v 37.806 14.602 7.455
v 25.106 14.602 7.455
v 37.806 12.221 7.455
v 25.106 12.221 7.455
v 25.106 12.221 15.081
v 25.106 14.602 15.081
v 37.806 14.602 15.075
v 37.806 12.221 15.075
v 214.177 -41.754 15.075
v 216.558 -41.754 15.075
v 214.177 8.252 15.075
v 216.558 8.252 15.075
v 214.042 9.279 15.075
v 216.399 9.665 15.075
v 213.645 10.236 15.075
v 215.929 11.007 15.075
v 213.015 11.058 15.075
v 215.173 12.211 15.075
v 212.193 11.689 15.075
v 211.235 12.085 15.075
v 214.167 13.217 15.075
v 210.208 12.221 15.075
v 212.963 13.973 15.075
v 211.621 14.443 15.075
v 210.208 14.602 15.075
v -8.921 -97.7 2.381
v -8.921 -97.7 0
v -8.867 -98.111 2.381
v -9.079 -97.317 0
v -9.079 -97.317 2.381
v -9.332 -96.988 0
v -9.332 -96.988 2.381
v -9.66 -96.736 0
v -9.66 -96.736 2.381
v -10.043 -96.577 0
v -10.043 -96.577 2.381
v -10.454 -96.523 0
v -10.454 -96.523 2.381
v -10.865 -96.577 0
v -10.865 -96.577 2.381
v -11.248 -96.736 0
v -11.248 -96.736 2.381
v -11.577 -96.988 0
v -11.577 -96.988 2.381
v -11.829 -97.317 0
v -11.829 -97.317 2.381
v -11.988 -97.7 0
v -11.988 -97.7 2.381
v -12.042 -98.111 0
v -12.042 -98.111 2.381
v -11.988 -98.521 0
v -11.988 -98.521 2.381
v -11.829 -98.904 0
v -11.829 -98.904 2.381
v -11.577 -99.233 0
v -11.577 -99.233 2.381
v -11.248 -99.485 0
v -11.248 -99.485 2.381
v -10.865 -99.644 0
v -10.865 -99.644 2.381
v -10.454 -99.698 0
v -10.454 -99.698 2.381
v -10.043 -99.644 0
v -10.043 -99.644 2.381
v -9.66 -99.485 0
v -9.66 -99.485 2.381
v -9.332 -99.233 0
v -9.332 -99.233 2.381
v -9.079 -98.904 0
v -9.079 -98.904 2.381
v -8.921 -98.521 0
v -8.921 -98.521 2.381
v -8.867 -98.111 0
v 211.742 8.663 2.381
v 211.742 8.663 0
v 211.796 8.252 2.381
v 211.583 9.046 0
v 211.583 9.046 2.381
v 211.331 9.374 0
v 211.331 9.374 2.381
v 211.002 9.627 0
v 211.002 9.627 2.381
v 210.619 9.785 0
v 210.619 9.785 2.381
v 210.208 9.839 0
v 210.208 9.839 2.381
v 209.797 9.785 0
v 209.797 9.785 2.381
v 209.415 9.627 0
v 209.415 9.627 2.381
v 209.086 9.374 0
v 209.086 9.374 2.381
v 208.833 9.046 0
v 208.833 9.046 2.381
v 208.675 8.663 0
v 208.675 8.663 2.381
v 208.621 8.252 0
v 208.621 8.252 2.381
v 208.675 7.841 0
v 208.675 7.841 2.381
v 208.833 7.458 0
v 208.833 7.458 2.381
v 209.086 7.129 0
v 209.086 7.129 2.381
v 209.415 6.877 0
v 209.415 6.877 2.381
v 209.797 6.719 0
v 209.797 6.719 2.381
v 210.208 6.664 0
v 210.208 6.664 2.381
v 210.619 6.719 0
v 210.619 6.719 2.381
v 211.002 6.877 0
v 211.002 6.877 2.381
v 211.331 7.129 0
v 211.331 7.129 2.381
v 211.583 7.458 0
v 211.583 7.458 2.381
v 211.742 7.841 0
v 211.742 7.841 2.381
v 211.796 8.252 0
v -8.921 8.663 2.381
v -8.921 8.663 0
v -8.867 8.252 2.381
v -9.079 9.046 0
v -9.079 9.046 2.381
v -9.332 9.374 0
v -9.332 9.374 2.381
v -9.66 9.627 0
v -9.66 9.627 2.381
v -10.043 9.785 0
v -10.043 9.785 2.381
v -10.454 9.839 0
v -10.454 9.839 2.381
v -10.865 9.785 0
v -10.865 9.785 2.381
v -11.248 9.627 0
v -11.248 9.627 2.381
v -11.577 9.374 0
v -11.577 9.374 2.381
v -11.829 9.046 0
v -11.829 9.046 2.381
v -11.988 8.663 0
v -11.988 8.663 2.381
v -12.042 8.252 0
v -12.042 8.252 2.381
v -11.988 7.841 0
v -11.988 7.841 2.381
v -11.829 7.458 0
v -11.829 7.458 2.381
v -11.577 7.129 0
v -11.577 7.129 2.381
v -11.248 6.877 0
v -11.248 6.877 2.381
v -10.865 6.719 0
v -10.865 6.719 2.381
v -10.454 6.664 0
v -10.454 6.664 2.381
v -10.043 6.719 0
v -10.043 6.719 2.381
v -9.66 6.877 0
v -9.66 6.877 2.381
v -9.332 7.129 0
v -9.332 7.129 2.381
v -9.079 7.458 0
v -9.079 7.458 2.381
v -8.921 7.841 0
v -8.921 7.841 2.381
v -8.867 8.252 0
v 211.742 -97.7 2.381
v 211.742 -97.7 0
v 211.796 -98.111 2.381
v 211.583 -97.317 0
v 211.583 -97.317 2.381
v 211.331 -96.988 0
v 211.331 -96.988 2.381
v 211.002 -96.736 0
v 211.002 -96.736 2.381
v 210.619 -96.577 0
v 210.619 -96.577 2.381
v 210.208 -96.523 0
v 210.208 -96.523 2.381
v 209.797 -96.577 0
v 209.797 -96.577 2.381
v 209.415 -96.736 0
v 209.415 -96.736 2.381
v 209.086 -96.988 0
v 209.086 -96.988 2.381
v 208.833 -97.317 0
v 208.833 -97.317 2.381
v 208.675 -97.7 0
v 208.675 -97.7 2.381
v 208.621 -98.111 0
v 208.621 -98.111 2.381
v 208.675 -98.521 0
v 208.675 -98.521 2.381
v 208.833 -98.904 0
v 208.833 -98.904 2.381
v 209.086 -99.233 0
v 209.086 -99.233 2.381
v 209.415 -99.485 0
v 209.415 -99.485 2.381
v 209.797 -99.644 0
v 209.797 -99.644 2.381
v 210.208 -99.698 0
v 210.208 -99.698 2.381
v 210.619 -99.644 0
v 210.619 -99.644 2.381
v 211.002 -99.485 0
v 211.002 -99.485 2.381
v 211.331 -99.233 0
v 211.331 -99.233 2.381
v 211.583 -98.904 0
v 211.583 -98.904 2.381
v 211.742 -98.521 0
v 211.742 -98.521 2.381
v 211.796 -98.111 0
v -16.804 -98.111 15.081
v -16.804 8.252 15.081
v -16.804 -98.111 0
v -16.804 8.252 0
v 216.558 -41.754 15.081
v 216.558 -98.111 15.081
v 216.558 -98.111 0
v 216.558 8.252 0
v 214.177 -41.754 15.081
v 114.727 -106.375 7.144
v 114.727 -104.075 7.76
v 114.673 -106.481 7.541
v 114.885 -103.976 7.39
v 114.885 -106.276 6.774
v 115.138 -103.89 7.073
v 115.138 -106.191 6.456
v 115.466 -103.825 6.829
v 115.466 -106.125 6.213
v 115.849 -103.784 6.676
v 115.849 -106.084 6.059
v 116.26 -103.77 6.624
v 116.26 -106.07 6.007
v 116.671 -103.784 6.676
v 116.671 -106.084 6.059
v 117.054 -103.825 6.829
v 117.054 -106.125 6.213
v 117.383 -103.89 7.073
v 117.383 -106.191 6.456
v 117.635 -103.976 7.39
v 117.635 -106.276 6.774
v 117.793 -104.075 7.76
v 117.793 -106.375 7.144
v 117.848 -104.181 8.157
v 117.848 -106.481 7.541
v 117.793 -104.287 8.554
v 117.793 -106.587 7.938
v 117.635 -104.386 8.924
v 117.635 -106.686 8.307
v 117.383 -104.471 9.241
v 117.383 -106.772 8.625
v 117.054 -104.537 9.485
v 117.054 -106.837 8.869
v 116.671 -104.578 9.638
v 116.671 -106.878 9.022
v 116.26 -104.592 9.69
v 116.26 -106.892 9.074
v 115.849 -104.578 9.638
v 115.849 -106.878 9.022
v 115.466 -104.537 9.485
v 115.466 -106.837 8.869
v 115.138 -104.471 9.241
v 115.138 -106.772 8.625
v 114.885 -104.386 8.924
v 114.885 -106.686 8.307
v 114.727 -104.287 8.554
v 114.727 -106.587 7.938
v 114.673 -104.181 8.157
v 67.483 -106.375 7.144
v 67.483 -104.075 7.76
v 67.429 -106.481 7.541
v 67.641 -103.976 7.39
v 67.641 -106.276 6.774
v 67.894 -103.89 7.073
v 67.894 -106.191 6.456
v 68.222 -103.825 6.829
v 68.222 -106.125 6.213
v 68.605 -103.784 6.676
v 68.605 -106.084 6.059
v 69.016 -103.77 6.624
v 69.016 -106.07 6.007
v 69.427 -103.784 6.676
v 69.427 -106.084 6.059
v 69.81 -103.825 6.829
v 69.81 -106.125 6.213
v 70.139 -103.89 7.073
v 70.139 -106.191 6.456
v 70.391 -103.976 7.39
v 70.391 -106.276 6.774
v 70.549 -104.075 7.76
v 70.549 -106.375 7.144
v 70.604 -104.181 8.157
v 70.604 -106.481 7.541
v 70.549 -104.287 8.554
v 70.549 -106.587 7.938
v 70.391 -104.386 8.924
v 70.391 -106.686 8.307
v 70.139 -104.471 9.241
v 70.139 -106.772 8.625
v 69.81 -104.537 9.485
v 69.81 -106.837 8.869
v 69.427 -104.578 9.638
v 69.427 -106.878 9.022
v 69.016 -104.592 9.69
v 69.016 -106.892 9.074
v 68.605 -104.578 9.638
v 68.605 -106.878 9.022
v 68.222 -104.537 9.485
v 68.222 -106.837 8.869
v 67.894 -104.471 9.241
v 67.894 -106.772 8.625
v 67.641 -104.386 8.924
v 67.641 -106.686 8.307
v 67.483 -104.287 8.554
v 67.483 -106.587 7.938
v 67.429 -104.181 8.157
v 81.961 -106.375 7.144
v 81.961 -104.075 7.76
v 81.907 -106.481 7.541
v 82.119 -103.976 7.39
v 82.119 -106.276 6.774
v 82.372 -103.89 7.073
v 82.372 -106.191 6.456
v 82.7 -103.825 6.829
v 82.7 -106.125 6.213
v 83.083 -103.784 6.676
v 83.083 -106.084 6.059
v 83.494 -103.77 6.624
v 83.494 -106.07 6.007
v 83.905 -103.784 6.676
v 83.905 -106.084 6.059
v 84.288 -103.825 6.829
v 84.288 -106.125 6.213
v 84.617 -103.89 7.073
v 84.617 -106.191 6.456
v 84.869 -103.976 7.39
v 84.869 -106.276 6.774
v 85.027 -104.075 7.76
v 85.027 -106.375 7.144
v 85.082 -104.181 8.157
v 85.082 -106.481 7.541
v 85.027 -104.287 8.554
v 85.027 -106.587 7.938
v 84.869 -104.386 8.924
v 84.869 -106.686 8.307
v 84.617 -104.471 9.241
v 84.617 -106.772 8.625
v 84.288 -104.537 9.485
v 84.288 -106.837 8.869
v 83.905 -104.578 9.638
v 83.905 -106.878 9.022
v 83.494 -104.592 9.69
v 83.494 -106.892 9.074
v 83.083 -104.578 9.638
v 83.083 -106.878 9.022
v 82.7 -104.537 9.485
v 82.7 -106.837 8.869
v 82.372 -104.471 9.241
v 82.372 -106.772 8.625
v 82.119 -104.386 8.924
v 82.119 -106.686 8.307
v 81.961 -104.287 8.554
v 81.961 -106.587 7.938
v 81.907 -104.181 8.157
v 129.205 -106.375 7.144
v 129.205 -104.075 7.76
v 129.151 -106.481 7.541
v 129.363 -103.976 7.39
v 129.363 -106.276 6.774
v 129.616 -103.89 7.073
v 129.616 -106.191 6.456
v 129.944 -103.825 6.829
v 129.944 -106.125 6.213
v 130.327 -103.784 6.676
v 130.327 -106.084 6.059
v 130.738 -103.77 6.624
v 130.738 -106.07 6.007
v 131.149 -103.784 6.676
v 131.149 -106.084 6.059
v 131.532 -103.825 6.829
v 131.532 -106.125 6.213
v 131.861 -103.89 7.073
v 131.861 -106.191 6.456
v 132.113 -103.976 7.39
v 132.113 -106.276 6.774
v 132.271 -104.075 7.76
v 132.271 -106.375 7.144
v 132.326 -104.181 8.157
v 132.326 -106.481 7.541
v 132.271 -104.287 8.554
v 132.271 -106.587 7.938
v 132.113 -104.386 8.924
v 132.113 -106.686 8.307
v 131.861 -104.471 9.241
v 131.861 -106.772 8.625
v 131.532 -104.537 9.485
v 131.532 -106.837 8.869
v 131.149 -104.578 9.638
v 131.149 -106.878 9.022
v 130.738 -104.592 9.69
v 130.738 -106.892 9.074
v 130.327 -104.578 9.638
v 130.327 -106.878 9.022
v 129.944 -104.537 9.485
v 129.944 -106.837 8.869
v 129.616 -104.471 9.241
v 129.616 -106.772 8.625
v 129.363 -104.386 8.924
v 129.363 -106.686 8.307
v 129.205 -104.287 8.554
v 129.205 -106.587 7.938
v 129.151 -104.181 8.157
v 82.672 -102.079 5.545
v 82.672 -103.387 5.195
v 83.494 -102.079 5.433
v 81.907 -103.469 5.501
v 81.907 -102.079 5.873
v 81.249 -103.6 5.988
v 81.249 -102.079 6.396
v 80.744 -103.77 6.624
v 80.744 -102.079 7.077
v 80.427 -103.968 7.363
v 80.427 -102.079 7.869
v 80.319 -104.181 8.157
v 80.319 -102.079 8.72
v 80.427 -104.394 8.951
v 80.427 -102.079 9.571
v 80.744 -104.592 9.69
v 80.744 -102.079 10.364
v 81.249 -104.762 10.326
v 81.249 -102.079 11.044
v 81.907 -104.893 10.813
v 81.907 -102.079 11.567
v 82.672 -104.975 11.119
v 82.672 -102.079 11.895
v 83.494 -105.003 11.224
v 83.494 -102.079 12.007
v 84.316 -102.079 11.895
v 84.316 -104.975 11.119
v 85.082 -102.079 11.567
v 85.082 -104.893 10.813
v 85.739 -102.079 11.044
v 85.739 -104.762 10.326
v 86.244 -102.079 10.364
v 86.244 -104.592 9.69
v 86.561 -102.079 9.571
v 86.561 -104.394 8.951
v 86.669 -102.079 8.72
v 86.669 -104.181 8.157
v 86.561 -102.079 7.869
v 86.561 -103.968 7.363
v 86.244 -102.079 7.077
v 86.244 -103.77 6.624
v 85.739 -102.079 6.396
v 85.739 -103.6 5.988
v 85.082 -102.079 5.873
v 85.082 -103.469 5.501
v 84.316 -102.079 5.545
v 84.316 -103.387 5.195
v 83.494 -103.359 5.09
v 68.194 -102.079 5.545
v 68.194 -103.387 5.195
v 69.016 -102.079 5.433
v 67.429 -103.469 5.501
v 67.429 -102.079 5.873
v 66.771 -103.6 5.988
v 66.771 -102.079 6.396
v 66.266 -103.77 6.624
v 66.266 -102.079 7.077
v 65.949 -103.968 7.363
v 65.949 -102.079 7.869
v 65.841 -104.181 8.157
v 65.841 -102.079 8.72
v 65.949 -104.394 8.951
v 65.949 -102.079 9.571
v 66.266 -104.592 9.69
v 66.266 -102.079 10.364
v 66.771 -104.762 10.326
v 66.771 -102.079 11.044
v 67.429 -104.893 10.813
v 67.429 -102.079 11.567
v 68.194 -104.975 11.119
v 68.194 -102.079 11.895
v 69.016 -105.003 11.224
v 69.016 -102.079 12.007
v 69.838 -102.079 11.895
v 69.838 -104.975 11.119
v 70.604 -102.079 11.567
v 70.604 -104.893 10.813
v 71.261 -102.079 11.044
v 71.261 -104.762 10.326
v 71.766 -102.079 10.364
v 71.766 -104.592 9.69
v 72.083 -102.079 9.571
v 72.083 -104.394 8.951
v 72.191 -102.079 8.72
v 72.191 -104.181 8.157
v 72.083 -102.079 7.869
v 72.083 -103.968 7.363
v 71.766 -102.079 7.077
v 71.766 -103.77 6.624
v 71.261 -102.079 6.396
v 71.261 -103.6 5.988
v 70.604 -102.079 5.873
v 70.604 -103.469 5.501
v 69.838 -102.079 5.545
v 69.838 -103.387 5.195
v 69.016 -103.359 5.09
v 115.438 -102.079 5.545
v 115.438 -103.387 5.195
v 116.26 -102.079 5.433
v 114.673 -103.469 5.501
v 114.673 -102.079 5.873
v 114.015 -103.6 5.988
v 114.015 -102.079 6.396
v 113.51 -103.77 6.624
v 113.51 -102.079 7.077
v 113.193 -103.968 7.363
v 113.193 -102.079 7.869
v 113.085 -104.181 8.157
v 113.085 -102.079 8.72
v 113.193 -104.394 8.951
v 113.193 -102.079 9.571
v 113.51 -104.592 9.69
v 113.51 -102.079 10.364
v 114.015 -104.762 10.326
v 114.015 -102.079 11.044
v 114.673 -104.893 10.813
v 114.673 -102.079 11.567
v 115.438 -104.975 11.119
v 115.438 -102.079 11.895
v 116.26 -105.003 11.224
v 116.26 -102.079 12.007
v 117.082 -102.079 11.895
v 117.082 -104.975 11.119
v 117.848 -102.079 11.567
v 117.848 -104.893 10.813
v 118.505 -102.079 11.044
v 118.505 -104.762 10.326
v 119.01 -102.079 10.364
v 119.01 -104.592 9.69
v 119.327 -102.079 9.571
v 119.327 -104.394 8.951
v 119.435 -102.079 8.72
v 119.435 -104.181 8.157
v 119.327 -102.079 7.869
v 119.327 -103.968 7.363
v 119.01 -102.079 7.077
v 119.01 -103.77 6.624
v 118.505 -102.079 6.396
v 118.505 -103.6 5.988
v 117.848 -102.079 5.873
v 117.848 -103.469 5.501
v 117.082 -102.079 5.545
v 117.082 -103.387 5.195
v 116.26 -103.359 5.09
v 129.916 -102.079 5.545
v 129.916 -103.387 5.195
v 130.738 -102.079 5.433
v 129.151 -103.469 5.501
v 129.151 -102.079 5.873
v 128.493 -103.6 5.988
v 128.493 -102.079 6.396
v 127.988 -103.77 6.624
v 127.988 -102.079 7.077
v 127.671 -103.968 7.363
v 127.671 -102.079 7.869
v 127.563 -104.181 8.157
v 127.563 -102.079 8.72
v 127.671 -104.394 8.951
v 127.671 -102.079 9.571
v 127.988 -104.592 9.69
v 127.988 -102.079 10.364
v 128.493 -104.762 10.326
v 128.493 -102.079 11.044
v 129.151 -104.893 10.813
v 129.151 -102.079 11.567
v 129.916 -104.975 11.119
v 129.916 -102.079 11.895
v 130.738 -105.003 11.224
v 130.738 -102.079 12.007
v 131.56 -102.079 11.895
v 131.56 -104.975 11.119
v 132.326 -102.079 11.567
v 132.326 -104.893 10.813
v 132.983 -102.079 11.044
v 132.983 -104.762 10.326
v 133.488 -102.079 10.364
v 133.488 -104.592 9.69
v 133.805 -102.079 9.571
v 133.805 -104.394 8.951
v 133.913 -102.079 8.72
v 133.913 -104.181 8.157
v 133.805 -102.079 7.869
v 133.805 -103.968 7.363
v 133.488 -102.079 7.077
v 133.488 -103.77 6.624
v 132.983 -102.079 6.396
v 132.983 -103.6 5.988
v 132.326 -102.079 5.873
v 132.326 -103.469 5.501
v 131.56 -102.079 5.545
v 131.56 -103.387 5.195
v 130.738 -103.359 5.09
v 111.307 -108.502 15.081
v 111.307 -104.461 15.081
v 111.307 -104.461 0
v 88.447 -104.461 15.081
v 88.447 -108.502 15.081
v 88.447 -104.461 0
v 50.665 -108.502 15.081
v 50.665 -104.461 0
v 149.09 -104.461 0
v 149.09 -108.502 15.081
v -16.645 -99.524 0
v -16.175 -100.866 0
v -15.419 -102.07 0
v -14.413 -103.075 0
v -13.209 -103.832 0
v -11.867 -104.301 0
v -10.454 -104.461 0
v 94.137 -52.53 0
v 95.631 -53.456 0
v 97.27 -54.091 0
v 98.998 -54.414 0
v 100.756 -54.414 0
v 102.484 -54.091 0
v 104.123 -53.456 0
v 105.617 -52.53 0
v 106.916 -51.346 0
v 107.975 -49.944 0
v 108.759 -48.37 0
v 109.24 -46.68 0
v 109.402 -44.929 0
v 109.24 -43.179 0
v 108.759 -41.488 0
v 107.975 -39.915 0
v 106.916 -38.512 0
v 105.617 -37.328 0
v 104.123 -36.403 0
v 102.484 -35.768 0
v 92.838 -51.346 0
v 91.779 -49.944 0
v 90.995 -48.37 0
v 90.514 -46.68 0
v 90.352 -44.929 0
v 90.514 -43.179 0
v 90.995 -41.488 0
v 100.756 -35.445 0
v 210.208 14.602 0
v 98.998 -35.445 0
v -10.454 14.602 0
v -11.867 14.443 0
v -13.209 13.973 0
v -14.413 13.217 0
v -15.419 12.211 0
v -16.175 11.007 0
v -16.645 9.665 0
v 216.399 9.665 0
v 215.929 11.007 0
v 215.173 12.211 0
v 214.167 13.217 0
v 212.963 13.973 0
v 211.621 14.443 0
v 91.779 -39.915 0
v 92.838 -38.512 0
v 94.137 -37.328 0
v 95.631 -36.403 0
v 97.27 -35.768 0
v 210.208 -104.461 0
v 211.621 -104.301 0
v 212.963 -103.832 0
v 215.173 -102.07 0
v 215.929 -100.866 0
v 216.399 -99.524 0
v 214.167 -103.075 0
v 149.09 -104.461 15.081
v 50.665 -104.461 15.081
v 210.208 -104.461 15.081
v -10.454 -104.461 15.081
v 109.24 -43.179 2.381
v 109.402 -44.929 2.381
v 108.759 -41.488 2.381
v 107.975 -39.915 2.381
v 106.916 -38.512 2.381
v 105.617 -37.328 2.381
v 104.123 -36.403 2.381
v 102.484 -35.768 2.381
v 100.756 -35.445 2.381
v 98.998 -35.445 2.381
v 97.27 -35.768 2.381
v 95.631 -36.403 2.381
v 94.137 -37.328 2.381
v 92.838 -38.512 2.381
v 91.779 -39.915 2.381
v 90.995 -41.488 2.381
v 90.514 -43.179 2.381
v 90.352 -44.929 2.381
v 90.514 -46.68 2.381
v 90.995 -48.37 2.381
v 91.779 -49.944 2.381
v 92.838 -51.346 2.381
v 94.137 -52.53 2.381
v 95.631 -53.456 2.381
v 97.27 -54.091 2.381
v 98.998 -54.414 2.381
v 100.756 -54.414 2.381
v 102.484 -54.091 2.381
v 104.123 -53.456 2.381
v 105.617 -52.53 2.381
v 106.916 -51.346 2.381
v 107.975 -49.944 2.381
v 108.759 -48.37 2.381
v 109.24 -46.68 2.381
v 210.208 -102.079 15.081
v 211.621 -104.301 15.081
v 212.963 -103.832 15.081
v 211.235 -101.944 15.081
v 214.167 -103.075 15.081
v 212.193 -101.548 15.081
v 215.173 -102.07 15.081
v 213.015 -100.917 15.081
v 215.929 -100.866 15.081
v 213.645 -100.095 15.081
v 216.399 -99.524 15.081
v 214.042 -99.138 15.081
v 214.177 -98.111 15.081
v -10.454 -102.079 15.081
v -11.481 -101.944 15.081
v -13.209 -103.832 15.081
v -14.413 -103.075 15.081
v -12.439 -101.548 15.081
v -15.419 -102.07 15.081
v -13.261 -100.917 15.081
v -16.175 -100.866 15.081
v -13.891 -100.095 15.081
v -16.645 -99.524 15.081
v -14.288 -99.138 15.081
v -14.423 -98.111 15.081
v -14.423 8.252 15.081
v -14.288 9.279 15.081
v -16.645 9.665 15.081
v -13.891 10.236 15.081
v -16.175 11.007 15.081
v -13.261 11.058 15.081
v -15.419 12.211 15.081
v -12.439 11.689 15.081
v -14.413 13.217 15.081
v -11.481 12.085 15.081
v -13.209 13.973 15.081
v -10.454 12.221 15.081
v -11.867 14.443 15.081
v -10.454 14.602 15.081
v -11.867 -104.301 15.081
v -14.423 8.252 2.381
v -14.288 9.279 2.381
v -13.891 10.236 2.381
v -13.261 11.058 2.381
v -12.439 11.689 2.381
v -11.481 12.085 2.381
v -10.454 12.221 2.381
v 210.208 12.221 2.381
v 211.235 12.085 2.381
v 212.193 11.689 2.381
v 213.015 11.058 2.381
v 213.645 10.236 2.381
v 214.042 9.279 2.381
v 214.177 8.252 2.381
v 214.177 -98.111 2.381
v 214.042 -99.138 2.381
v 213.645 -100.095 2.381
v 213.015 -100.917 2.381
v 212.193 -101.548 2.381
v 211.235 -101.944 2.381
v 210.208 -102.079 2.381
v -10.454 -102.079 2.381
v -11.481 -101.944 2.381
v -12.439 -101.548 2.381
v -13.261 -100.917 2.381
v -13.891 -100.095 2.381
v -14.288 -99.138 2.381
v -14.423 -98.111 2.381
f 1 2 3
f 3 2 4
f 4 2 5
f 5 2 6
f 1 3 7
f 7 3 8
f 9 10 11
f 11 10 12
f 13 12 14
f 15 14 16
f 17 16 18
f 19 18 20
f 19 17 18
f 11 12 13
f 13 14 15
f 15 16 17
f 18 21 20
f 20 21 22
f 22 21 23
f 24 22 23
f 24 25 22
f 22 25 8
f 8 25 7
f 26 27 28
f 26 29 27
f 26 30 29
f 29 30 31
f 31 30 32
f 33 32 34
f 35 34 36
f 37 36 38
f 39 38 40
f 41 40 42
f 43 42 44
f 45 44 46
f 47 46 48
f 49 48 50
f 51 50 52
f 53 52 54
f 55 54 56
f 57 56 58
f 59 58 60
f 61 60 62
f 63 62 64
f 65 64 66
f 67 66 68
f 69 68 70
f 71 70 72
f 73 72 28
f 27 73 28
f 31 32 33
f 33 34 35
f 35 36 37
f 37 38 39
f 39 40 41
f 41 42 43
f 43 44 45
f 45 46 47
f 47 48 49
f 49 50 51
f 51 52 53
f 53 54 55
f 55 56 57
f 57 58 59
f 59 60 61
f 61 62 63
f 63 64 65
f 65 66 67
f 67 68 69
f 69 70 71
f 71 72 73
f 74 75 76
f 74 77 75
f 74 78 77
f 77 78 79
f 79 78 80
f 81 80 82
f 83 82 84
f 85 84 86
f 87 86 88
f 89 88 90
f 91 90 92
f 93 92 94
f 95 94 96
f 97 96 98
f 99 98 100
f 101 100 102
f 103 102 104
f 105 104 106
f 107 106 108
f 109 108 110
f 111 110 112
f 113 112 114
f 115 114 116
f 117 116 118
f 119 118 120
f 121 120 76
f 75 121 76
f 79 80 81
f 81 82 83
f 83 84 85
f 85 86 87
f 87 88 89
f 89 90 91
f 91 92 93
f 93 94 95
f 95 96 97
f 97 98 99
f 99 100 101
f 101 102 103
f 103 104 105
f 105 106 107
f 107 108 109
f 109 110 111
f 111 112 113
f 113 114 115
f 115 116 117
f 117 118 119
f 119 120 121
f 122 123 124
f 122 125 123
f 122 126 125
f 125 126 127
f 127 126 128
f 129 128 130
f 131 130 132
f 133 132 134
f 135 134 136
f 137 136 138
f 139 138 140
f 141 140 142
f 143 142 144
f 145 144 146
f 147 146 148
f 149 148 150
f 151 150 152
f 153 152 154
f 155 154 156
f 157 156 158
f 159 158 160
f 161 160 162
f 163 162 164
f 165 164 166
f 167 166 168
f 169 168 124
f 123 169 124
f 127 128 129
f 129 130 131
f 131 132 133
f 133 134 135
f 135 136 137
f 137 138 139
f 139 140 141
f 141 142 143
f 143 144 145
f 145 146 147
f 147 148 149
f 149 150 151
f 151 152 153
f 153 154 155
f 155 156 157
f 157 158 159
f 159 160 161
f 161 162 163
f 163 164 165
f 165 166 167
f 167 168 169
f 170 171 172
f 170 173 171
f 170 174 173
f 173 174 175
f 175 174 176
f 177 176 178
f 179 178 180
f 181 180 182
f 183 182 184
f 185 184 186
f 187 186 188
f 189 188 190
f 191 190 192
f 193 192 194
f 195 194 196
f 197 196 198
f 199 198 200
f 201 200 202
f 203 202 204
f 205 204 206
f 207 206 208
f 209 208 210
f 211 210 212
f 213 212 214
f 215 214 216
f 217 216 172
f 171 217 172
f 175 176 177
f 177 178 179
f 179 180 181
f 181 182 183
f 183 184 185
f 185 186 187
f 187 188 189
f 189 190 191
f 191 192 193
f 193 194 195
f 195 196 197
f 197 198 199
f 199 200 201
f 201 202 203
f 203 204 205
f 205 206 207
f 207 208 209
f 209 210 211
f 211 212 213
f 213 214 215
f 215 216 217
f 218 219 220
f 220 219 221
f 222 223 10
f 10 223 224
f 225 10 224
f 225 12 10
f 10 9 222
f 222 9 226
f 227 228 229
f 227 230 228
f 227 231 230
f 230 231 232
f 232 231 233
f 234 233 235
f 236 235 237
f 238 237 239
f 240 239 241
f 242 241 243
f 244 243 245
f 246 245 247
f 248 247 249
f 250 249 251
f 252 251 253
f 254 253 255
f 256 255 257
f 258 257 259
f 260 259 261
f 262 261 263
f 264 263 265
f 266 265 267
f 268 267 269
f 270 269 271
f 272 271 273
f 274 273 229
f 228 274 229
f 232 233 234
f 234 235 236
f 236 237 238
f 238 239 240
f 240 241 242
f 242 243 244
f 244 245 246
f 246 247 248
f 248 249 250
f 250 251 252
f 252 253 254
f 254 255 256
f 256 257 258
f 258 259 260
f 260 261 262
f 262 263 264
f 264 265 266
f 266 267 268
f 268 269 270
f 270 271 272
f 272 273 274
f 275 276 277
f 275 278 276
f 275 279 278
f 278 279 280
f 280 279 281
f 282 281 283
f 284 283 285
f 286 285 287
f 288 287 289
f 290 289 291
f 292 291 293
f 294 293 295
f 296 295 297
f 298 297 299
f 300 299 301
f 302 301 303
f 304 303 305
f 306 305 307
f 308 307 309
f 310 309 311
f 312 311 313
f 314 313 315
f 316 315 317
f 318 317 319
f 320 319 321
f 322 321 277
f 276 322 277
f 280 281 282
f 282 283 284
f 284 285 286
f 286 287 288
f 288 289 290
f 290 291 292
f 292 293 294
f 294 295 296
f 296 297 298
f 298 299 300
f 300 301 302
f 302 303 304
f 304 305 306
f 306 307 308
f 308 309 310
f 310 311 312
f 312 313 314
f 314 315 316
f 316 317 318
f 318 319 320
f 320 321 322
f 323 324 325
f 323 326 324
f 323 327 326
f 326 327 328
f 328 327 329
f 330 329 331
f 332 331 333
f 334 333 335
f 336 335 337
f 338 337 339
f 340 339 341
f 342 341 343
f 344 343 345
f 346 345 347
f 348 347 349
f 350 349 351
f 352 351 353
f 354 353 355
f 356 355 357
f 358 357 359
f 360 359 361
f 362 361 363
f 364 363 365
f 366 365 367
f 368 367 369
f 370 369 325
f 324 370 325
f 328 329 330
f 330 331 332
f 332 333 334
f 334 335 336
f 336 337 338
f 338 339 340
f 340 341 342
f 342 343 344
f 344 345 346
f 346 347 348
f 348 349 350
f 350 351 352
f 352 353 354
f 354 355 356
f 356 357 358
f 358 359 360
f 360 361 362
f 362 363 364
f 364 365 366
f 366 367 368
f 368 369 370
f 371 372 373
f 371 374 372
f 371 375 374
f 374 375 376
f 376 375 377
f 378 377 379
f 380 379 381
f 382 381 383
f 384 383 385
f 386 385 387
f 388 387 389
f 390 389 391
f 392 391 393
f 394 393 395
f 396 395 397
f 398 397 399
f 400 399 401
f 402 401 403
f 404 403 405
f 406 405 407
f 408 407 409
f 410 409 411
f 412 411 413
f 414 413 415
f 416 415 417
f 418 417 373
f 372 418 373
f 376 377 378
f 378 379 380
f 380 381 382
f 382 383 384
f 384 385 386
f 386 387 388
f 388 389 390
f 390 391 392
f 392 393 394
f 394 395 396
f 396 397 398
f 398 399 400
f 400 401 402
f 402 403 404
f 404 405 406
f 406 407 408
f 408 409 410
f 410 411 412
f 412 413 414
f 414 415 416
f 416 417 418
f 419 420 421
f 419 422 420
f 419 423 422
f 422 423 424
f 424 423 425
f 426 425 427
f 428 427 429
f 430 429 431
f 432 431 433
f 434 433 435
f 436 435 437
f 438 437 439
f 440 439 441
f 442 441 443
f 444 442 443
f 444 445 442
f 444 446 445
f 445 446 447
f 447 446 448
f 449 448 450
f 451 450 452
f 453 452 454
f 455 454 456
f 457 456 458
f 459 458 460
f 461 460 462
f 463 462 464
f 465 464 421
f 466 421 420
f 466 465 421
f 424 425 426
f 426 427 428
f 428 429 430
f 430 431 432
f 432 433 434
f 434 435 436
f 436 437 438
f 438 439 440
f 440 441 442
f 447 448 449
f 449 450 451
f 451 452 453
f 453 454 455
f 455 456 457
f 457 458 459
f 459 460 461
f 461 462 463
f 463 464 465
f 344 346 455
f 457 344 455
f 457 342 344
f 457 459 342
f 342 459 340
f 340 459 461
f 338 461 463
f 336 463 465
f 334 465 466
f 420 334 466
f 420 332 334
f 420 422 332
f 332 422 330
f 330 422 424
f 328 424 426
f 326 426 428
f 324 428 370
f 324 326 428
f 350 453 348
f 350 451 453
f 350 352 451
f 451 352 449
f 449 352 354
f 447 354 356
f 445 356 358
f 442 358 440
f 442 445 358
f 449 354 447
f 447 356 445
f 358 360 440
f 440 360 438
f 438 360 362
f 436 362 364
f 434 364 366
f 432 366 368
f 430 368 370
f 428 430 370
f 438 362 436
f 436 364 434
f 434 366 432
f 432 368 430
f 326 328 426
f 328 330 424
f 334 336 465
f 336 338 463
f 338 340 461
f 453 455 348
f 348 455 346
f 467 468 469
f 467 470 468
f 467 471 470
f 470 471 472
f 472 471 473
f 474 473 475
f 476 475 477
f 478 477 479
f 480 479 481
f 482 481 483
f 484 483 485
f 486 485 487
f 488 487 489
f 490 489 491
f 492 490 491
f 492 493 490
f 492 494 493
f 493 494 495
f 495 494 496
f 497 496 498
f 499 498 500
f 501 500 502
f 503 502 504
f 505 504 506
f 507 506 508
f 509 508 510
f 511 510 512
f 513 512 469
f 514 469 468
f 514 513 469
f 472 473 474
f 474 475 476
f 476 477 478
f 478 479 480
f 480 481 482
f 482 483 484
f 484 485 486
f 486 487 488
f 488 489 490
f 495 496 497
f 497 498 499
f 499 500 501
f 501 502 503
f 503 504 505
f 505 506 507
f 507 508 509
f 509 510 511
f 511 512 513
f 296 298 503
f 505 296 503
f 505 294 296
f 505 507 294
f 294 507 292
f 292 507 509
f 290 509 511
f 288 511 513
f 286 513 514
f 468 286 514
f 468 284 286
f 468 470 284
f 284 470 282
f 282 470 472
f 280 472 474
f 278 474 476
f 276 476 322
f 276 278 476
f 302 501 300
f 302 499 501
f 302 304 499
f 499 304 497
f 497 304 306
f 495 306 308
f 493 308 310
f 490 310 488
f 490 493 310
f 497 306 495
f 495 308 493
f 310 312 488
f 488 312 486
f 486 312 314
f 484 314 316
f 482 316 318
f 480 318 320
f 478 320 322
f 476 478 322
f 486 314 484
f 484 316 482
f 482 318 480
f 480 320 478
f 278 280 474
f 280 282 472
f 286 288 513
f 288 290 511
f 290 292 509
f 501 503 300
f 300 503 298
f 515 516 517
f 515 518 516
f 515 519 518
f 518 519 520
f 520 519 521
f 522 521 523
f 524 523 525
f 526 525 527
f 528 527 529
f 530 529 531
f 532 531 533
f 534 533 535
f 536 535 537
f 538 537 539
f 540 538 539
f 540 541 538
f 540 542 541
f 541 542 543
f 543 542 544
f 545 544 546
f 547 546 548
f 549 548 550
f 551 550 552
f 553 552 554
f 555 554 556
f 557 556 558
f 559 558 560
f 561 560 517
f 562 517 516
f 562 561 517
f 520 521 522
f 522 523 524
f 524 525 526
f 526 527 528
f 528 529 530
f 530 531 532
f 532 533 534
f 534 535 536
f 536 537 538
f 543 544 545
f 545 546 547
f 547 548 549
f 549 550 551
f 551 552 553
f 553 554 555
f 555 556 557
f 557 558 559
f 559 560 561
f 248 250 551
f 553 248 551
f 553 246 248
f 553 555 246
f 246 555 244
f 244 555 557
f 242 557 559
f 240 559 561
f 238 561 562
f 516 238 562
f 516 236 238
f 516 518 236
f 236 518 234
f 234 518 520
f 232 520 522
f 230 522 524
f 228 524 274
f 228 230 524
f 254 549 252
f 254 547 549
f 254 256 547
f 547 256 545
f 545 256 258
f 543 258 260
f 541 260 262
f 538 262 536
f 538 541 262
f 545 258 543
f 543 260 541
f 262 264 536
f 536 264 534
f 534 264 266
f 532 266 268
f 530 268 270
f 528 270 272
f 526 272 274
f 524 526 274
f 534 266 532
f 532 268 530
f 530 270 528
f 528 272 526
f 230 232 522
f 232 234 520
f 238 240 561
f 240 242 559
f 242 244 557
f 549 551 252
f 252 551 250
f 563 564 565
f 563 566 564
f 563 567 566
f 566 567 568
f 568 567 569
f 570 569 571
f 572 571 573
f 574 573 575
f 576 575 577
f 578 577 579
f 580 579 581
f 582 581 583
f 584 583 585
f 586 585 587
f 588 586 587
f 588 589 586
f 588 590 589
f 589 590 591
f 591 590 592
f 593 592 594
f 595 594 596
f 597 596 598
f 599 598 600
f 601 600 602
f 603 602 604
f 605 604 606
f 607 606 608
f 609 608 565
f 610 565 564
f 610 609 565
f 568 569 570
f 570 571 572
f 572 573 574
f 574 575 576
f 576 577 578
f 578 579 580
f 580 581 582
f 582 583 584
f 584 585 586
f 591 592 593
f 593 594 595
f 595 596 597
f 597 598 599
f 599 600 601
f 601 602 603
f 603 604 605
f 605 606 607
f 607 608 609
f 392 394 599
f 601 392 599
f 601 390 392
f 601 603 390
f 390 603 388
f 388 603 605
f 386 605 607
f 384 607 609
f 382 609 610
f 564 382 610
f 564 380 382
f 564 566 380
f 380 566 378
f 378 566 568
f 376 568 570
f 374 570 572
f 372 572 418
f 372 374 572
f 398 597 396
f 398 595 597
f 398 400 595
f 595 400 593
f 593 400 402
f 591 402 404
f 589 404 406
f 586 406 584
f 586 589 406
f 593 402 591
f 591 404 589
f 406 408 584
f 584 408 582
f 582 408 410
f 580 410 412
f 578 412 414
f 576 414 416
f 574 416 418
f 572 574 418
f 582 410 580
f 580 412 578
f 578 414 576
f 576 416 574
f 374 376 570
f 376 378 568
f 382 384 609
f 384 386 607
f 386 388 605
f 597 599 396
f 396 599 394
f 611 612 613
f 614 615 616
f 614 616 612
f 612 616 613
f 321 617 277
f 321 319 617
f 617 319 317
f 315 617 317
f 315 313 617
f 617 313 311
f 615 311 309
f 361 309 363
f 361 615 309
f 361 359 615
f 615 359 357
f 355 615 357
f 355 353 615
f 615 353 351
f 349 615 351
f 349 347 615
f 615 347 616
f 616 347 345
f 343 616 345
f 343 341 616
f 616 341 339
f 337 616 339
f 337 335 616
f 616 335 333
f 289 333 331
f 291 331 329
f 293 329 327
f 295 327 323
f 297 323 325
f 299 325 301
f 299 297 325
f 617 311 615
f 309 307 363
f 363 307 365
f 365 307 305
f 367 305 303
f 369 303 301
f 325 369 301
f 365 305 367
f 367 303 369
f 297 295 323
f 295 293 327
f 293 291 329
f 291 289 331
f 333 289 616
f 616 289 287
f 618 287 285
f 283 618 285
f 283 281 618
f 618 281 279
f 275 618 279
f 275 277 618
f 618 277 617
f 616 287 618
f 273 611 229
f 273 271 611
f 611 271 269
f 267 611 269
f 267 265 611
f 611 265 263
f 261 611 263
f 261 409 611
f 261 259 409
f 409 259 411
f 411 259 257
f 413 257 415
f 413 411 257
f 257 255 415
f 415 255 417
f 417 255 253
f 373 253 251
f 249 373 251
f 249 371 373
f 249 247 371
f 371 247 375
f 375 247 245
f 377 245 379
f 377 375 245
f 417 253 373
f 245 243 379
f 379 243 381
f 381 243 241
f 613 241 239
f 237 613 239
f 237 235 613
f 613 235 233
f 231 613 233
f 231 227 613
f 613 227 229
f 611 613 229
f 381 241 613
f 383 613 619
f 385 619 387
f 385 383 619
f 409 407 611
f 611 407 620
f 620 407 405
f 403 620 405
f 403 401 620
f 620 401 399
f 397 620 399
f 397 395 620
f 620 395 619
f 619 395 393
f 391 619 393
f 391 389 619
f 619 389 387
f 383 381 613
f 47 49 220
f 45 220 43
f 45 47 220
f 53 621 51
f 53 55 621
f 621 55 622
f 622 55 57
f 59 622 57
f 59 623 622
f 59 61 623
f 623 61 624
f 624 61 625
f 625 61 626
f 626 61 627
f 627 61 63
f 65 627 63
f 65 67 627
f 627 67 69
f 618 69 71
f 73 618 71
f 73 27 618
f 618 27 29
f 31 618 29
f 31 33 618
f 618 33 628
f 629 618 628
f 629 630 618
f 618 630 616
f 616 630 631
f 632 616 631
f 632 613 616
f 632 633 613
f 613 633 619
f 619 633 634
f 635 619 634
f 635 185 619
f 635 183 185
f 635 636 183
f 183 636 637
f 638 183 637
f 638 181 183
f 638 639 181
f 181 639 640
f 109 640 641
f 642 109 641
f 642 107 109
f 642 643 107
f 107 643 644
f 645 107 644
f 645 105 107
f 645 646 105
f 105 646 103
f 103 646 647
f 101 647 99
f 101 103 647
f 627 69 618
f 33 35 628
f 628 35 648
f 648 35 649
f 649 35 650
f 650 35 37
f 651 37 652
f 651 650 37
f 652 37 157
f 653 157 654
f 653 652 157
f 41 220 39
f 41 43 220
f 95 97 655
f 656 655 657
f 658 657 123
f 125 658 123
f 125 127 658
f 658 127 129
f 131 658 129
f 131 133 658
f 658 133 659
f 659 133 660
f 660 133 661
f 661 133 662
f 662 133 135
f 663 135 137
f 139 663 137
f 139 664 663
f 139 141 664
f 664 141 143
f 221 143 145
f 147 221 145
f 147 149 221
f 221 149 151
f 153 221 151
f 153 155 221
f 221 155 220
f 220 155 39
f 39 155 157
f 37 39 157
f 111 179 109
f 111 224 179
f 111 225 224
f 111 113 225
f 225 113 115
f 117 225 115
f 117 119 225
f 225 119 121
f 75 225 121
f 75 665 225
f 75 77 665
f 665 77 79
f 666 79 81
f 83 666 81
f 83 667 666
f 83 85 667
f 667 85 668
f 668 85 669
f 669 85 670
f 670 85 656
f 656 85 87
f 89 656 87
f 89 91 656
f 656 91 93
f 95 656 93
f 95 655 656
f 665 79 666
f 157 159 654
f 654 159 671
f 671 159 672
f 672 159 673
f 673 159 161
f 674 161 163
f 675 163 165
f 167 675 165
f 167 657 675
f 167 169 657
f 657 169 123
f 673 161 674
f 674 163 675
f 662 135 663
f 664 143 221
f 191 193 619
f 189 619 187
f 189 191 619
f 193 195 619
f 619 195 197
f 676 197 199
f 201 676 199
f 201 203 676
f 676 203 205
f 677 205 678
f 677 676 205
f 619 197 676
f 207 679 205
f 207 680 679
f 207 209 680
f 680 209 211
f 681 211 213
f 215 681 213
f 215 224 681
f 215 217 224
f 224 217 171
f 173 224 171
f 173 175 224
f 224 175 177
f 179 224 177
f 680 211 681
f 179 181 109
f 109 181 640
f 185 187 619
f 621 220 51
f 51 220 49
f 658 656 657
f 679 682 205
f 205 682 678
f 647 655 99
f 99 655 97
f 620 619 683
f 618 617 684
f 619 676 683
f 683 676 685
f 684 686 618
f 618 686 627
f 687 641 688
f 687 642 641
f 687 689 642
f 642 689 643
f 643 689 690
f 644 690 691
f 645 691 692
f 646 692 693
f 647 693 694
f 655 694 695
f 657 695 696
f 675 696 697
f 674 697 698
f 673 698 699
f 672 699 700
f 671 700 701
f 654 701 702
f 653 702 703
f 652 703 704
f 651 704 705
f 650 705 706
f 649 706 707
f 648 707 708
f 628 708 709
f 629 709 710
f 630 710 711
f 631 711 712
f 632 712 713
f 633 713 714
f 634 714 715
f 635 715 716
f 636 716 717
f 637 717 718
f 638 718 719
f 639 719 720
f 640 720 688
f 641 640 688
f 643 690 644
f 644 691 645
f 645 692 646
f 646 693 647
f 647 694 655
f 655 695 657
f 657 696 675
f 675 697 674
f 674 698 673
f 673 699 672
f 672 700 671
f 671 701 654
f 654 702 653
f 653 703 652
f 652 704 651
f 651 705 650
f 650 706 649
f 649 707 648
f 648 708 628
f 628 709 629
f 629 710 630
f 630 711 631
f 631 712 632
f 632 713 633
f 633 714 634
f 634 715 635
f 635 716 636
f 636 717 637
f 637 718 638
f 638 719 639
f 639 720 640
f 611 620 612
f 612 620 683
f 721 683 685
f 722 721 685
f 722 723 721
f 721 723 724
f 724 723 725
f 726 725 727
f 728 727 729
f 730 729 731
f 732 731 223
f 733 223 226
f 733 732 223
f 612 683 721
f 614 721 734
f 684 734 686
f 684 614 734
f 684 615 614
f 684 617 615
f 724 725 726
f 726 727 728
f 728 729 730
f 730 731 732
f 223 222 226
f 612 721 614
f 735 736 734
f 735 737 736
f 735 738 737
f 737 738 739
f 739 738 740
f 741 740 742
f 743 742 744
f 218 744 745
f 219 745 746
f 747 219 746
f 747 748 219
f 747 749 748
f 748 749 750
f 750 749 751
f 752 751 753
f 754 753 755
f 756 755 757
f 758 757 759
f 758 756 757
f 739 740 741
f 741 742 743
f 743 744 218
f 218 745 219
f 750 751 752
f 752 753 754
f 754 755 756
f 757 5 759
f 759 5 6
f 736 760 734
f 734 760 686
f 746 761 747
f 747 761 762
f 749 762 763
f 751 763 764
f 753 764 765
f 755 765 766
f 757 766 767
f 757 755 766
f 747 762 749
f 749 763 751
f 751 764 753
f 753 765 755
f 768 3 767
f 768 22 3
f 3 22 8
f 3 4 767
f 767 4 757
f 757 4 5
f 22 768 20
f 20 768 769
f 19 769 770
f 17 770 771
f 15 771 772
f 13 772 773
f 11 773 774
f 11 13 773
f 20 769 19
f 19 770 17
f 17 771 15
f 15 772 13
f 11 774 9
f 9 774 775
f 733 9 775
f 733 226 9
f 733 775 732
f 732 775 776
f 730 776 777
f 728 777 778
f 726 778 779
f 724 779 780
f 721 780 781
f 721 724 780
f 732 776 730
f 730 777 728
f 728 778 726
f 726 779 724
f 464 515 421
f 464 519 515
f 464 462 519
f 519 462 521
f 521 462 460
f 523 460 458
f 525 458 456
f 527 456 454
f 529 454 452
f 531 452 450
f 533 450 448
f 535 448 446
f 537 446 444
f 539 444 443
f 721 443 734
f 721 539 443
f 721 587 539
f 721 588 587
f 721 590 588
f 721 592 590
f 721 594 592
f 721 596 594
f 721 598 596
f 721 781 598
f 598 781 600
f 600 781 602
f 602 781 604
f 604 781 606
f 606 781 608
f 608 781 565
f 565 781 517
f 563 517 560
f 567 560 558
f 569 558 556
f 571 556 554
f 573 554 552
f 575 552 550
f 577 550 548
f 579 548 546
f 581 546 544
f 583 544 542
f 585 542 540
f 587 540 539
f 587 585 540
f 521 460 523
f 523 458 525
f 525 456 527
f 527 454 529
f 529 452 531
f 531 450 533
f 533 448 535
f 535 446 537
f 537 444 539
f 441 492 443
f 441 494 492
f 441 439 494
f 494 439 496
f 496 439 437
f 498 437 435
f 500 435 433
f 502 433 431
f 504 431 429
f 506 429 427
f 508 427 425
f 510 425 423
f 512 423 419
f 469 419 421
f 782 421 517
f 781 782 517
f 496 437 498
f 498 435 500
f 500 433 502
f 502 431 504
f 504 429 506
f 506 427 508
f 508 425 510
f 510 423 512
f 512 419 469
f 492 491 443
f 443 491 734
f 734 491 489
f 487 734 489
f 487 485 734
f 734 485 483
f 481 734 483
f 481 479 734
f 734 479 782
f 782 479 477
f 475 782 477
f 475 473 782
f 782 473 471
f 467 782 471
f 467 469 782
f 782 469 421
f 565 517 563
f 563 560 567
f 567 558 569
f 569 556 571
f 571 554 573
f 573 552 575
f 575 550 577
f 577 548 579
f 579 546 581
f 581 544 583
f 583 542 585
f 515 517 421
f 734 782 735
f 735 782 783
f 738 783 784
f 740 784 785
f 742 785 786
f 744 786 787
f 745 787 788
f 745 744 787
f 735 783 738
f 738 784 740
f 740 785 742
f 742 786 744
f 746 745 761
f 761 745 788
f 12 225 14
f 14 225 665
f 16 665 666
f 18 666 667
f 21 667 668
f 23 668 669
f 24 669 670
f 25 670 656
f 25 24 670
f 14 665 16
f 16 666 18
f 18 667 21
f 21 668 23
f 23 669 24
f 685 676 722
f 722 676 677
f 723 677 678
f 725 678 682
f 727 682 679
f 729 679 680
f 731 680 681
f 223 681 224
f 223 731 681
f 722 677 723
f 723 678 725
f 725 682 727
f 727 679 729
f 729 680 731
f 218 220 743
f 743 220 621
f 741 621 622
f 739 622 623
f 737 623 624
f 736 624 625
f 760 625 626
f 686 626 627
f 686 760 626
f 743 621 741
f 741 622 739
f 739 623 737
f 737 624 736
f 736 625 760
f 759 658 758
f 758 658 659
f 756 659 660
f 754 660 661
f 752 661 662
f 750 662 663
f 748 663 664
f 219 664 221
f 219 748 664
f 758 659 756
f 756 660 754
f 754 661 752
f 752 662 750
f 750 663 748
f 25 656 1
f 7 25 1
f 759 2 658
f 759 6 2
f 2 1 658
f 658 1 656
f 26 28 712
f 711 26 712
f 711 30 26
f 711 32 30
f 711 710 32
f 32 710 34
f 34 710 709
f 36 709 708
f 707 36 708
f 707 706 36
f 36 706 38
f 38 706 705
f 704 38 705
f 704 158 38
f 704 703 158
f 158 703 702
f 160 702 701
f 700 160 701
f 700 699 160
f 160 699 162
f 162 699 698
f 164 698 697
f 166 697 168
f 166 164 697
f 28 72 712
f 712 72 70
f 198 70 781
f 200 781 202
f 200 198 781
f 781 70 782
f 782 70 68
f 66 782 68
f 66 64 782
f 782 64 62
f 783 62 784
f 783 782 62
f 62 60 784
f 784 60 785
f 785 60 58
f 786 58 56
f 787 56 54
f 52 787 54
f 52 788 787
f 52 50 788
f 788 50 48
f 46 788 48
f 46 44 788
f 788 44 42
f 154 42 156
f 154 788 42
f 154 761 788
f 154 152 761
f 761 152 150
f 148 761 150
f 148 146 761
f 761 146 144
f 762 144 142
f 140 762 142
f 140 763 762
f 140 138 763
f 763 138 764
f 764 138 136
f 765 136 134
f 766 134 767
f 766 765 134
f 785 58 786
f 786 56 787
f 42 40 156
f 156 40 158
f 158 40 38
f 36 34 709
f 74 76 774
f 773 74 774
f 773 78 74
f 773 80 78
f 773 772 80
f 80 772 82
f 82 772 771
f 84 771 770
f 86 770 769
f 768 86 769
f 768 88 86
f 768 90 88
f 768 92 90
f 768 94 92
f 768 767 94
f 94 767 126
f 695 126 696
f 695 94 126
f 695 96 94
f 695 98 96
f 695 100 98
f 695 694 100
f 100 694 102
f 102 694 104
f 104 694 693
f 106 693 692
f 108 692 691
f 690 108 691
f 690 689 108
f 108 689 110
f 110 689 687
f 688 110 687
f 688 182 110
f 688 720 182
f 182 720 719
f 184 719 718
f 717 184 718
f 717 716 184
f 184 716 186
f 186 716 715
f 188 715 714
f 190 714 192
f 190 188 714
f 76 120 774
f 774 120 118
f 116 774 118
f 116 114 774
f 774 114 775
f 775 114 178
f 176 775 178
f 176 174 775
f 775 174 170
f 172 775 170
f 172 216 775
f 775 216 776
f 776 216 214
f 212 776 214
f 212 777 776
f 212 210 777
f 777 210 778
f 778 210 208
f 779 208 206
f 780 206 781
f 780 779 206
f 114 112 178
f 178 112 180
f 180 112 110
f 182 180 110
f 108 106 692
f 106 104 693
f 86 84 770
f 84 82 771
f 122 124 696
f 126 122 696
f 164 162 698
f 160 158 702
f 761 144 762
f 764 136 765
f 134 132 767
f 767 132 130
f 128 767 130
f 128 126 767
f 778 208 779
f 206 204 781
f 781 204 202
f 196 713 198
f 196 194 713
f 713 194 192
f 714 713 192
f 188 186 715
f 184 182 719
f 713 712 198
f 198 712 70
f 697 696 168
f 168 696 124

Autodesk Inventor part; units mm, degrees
ref_plane "YZ Plane" through (0, 0, 0) normal (1, 0, 0) x (0, 1, 0)
ref_plane "XZ Plane" through (0, 0, 0) normal (0, 1, 0) x (-1, 0, 0)
sketch "Sketch1" plane through (0, 0, 0) normal (0, 0, 1) x (1, 0, 0)
  line L0 (-10.454202, 14.601943) -> (210.208298, 14.601943)
  line L1 (216.558298, 8.251943) -> (216.558298, -98.110557)
  line L2 (210.208298, -104.460557) -> (-10.454202, -104.460557)
  line L3 (-16.804202, -98.110557) -> (-16.804202, 8.251943)
  line L4 (99.877048, 12.220693) -> (-10.454202, 12.220693)
  line L5 (-14.422952, 8.251943) -> (-14.422952, -44.929307)
  line L6 (99.877048, 12.220693) -> (210.208298, 12.220693)
  line L7 (214.177048, 8.251943) -> (214.177048, -44.929307)
  line L8 (99.877048, -102.079307) -> (210.208298, -102.079307)
  line L9 (214.177048, -98.110557) -> (214.177048, -44.929307)
  line L10 (99.877048, -102.079307) -> (-10.454202, -102.079307)
  line L11 (-14.422952, -98.110557) -> (-14.422952, -44.929307)
  arc A0 (-10.454202, 14.601943) -> (-16.804202, 8.251943) centre (-10.454202, 8.251943) ccw
  arc A1 (216.558298, 8.251943) -> (210.208298, 14.601943) centre (210.208298, 8.251943) ccw
  arc A2 (210.208298, -104.460557) -> (216.558298, -98.110557) centre (210.208298, -98.110557) ccw
  arc A3 (-16.804202, -98.110557) -> (-10.454202, -104.460557) centre (-10.454202, -98.110557) ccw
  arc A4 (-10.454202, 12.220693) -> (-14.422952, 8.251943) centre (-10.454202, 8.251943) ccw
  arc A5 (214.177048, 8.251943) -> (210.208298, 12.220693) centre (210.208298, 8.251943) ccw
  arc A6 (210.208298, -102.079307) -> (214.177048, -98.110557) centre (210.208298, -98.110557) ccw
  arc A7 (-14.422952, -98.110557) -> (-10.454202, -102.079307) centre (-10.454202, -98.110557) ccw
  point P0 (0, 0)
  point P1 (-16.804202, 14.601943)
  point P2 (216.558298, -104.460557)
  point P3 (216.558298, 14.601943)
  point P4 (-16.804202, -104.460557)
  dimension "d0" = 233.3625
  dimension "d1" = 119.0625
  dimension "d9" = 6.35
  dimension "d10" = 3.96875
extrude "Extrusion1" add sketch "Sketch1" along normal blind 2.38125 contours L0 A1 L1 A2 L2 A3 L3 A0 | L6 A5 L7 L9 A6 L8 L10 A7 L11 L5 A4 L4
sketch "Sketch2" plane through (0, 0, 2.38125) normal (0, 0, 1) x (1, 0, 0)
  line L0 (210.208298, 14.601943) -> (-10.454202, 14.601943)
  arc A0 (-10.454202, 14.601943) -> (-16.804202, 8.251943) centre (-10.454202, 8.251943) ccw
  line L1 (-16.804202, 8.251943) -> (-16.804202, -98.110557)
  arc A1 (-16.804202, -98.110557) -> (-10.454202, -104.460557) centre (-10.454202, -98.110557) ccw
  line L2 (-10.454202, -104.460557) -> (210.208298, -104.460557)
  arc A2 (210.208298, -104.460557) -> (216.558298, -98.110557) centre (210.208298, -98.110557) ccw
  line L3 (216.558298, -98.110557) -> (216.558298, 8.251943)
  arc A3 (216.558298, 8.251943) -> (210.208298, 14.601943) centre (210.208298, 8.251943) ccw
  line L4 (99.877048, 12.220693) -> (-10.454202, 12.220693)
  line L5 (-14.422952, 8.251943) -> (-14.422952, -44.929307)
  line L6 (99.877048, -102.079307) -> (-10.454202, -102.079307)
  line L7 (-14.422952, -98.110557) -> (-14.422952, -44.929307)
  line L8 (99.877048, -102.079307) -> (210.208298, -102.079307)
  line L9 (214.177048, -98.110557) -> (214.177048, -44.929307)
  line L10 (99.877048, 12.220693) -> (210.208298, 12.220693)
  line L11 (214.177048, 8.251943) -> (214.177048, -44.929307)
  arc A4 (-10.454202, 12.220693) -> (-14.422952, 8.251943) centre (-10.454202, 8.251943) ccw
  arc A5 (214.177048, 8.251943) -> (210.208298, 12.220693) centre (210.208298, 8.251943) ccw
  arc A6 (210.208298, -102.079307) -> (214.177048, -98.110557) centre (210.208298, -98.110557) ccw
  arc A7 (-14.422952, -98.110557) -> (-10.454202, -102.079307) centre (-10.454202, -98.110557) ccw
  point P0 (0, 0)
  dimension "d15" = 3.96875
extrude "Extrusion2" add sketch "Sketch2" along normal blind 2.38125
sketch "Sketch3" plane through (0, 0, 4.7625) normal (0, 0, 1) x (1, 0, 0)
  arc A0 (-10.454202, 12.220693) -> (-14.422952, 8.251943) centre (-10.454202, 8.251943) ccw
  arc A1 (214.177048, 8.251943) -> (210.208298, 12.220693) centre (210.208298, 8.251943) ccw
  line L0 (214.177048, 8.251943) -> (214.177048, -98.110557)
  arc A2 (210.208298, -102.079307) -> (214.177048, -98.110557) centre (210.208298, -98.110557) ccw
  line L1 (210.208298, -102.079307) -> (-10.454202, -102.079307)
  arc A3 (-14.422952, -98.110557) -> (-10.454202, -102.079307) centre (-10.454202, -98.110557) ccw
  line L2 (-14.422952, -98.110557) -> (-14.422952, 8.251943)
  arc A4 (-10.454202, 14.601943) -> (-16.804202, 8.251943) centre (-10.454202, 8.251943) ccw
  line L3 (-16.804202, 8.251943) -> (-16.804202, -98.110557)
  arc A5 (-16.804202, -98.110557) -> (-10.454202, -104.460557) centre (-10.454202, -98.110557) ccw
  line L4 (-10.454202, -104.460557) -> (210.208298, -104.460557)
  arc A6 (210.208298, -104.460557) -> (216.558298, -98.110557) centre (210.208298, -98.110557) ccw
  line L5 (216.558298, -98.110557) -> (216.558298, 8.251943)
  arc A7 (216.558298, 8.251943) -> (210.208298, 14.601943) centre (210.208298, 8.251943) ccw
  line L6 (214.177048, -44.929307) -> (214.177048, -41.754307)
  line L7 (214.177048, -41.754307) -> (216.558298, -41.754307)
  line L8 (216.558298, -41.754307) -> (216.558298, -44.929307)
  line L9 (216.558298, -44.929307) -> (216.558298, -48.104307)
  line L10 (216.558298, -48.104307) -> (214.177048, -48.104307)
  line L11 (214.177048, -48.104307) -> (214.177048, -44.929307)
  line L12 (-14.422952, -44.929307) -> (-14.422952, -41.754307)
  line L13 (-14.422952, -41.754307) -> (-16.804202, -41.754307)
  line L14 (-16.804202, -41.754307) -> (-16.804202, -44.929307)
  line L15 (-16.804202, -44.929307) -> (-16.804202, -48.104307)
  line L16 (-16.804202, -48.104307) -> (-14.422952, -48.104307)
  line L17 (-14.422952, -48.104307) -> (-14.422952, -44.929307)
  line L18 (25.105798, 14.601943) -> (25.105798, 12.220693)
  line L19 (37.805798, 14.601943) -> (37.805798, 12.220693)
  line L20 (-10.454202, 14.601943) -> (25.105798, 14.601943)
  line L21 (25.105798, 12.220693) -> (-10.454202, 12.220693)
  line L22 (37.805798, 12.220693) -> (210.208298, 12.220693)
  line L23 (210.208298, 14.601943) -> (37.805798, 14.601943)
  point P0 (0, 0)
  dimension "d18" = 3.175
  dimension "d19" = 3.175
  dimension "d20" = 3.175
  dimension "d21" = 3.175
  dimension "d78" = 35.56
  dimension "d79" = 12.7
extrude "Extrusion3" add sketch "Sketch3" along normal blind 10.31875 contours A0 L2 L13 L3 A4 L20 L18 L21 | L2 A3 L1 A2 L0 L10 L5 A6 L4 A5 L3 L16
sketch "Sketch4" plane through (0, 0, 15.08125) normal (0, 0, 1) x (1, 0, 0)
  line L0 (214.177048, -41.754307) -> (216.558298, -41.754307)
  line L1 (216.558298, -41.754307) -> (216.558298, -48.104307)
  line L2 (216.558298, -48.104307) -> (214.177048, -48.104307)
  line L3 (214.177048, -48.104307) -> (214.177048, -41.754307)
  line L4 (-16.804202, -41.754307) -> (-14.422952, -41.754307)
  line L5 (-14.422952, -41.754307) -> (-14.422952, -48.104307)
  line L6 (-14.422952, -48.104307) -> (-16.804202, -48.104307)
  line L7 (-16.804202, -48.104307) -> (-16.804202, -41.754307)
  point P0 (0, 0)
  dimension "d24" = 2.38125
  dimension "d25" = 6.35
  dimension "d26" = 2.38125
  dimension "d27" = 6.35
extrude "Extrusion4" add sketch "Sketch4" against normal blind 7.9375
sketch "Sketch5" plane through (0, 0, 0) normal (0, 0, -1) x (-1, 0, 0)
  arc A0 (-210.208298, 14.601943) -> (-216.558298, 8.251943) centre (-210.208298, 8.251943) ccw
  line L0 (-210.208298, 8.251943) -> (-99.877048, 8.251943)
  line L1 (-99.877048, 8.251943) -> (-99.877048, -44.929307)
  line L2 (-99.877048, -44.929307) -> (-210.208298, -44.929307)
  line L3 (-210.208298, -44.929307) -> (-210.208298, 8.251943)
  point P0 (0, 0)
hole "Hole1" at (99.877048, -44.929307, 0) direction (0, 0, 1) diameter 19.05 end through all
sketch "Sketch7" plane through (-10.454202, -104.460557, 0) normal (0, -1, 0) x (1, 0, 0)
  line L0 (220.6625, 0) -> (0, 0)
  line L1 (0, 15.08125) -> (220.6625, 15.08125)
  line L2 (61.11875, 15.08125) -> (61.11875, 0)
  line L3 (159.54375, 15.08125) -> (159.54375, 0)
  line L4 (61.11875, 15.08125) -> (159.54375, 15.08125)
  line L5 (159.54375, 0) -> (61.11875, 0)
  point P0 (10.454202, 0)
extrude "Extrusion5" add sketch "Sketch7" along normal blind 25.4
sketch "Sketch8" plane through (149.089548, -104.460557, 15.08125) normal (1, 0, 0) x (0, 0, -1)
  line L0 (15.08125, 0) -> (-19.502452, -9.266675)
  line L1 (15.08125, 0) -> (50.884933, 0) construction
  point P0 (15.08125, 104.460557)
  dimension "d41" = 165
split body "Split1" sketch "Sketch8" result one side removed curves L0 removed pieces at (116.281215, -121.39389, 0.5)
ref_plane "Work Plane1" through (50.664548, -102.160446, 0.616313) normal (0, -0.9659258, -0.258819) x (1, 0, 0)
sketch "Sketch10" plane through (0, 0, 15.08125) normal (0, 0, 1) x (1, 0, 0)
  line L0 (99.877048, -104.460557) -> (111.307048, -104.460557)
  line L1 (111.307048, -104.460557) -> (111.307048, -108.501565)
  line L2 (99.877048, -104.460557) -> (88.447048, -104.460557)
  line L3 (88.447048, -104.460557) -> (88.447048, -108.501565)
  line L4 (88.447048, -108.501565) -> (111.307048, -108.501565)
  point P0 (0, 0)
  dimension "d43" = 11.43
  dimension "d44" = 11.43
split body "Split2" sketch "Sketch10" result one side removed curves L4 L1 L0 L2 L3 removed pieces at (99.877048, -106.671599, 10.183576)
sketch "Sketch13" plane through (50.664548, -102.160446, 0.616313) normal (0, -0.9659258, -0.258819) x (1, 0, 0)
  line L0 (37.7825, 0) -> (37.7825, 15.613259)
  line L1 (0, 15.613259) -> (37.7825, 15.613259)
  line L2 (0, 0) -> (0, 15.613259)
  line L3 (37.7825, 0) -> (0, 0)
  line L4 (60.6425, 15.613259) -> (60.6425, 0)
  line L5 (98.425, 0) -> (60.6425, 0)
  line L6 (98.425, 15.613259) -> (98.425, 0)
  line L7 (60.6425, 15.613259) -> (98.425, 15.613259)
  line L8 (0, 15.613259) -> (98.425, 15.613259)
  line L9 (49.2125, 15.613259) -> (49.2125, 0)
  line L10 (49.2125, 7.806629) -> (32.8295, 7.806629)
  line L11 (49.2125, 7.806629) -> (65.5955, 7.806629)
  line L12 (65.5955, 7.806629) -> (80.0735, 7.806629)
  line L13 (32.8295, 7.806629) -> (18.3515, 7.806629)
  point P0 (-50.664548, -27.036381)
  dimension "d45" = 16.383
  dimension "d46" = 16.383
  dimension "d47" = 14.478
  dimension "d48" = 14.478
hole "Hole2" at (69.016048, -104.18095, 8.156938) at (116.260048, -104.18095, 8.156938) at (83.494048, -104.18095, 8.156938) at (130.738048, -104.18095, 8.156938) direction (0, 0.9659258, 0.258819) diameter 6.35 end through all
sketch "Sketch14" plane through (50.664548, -102.160446, 0.616313) normal (0, -0.9659258, -0.258819) x (1, 0, 0)
  line L0 (37.7825, 0) -> (37.7825, 15.613259)
  line L1 (0, 15.613259) -> (37.7825, 15.613259)
  line L2 (0, 0) -> (0, 15.613259)
  line L3 (37.7825, 0) -> (0, 0)
  line L4 (60.6425, 15.613259) -> (60.6425, 0)
  line L5 (98.425, 0) -> (60.6425, 0)
  line L6 (98.425, 15.613259) -> (98.425, 0)
  line L7 (60.6425, 15.613259) -> (98.425, 15.613259)
  line L8 (0, 15.613259) -> (98.425, 15.613259)
  line L9 (49.2125, 15.613259) -> (49.2125, 0)
  line L10 (49.2125, 7.806629) -> (65.5955, 7.806629)
  line L11 (65.5955, 7.806629) -> (80.0735, 7.806629)
  line L12 (49.2125, 7.806629) -> (32.8295, 7.806629)
  line L13 (32.8295, 7.806629) -> (18.3515, 7.806629)
  point P0 (-50.664548, -27.036381)
  dimension "d56" = 16.383
  dimension "d57" = 14.478
  dimension "d58" = 16.383
  dimension "d59" = 14.478
hole "Hole3" at (69.016048, -104.18095, 8.156938) at (83.494048, -104.18095, 8.156938) at (116.260048, -104.18095, 8.156938) at (130.738048, -104.18095, 8.156938) direction (0, -0.9659258, -0.258819) diameter 3.175 end through all
sketch "Sketch15" plane through (0, 0, 4.7625) normal (0, 0, 1) x (1, 0, 0)
  line L0 (216.558298, -41.754307) -> (214.177048, -41.754307)
  line L1 (214.177048, 8.251943) -> (214.177048, -48.104307)
  line L2 (216.558298, -41.754307) -> (214.177048, -41.754307)
  line L3 (214.177048, -41.754307) -> (214.177048, -48.104307)
  line L4 (214.177048, -48.104307) -> (216.558298, -48.104307)
  line L5 (216.558298, -48.104307) -> (216.558298, -41.754307)
  point P0 (0, 0)
extrude "Extrusion6" add sketch "Sketch15" along normal blind 2.3876
sketch "Sketch16" plane through (0, 0, 4.7625) normal (0, 0, 1) x (1, 0, 0)
  line L0 (-14.422952, -41.754307) -> (-16.804202, -41.754307)
  line L1 (-16.804202, -41.754307) -> (-16.804202, -48.104307)
  line L2 (-14.422952, -41.754307) -> (-16.804202, -41.754307)
  line L3 (-16.804202, -41.754307) -> (-16.804202, -48.104307)
  line L4 (-16.804202, -48.104307) -> (-14.422952, -48.104307)
  line L5 (-14.422952, -48.104307) -> (-14.422952, -41.754307)
  point P0 (0, 0)
extrude "Extrusion7" add sketch "Sketch16" along normal blind 2.3876
sketch "Sketch17" plane through (0, 0, 0) normal (0, 0, -1) x (-1, 0, 0)
  arc A0 (10.454202, -104.460557) -> (16.804202, -98.110557) centre (10.454202, -98.110557) ccw
  arc A1 (16.804202, 8.251943) -> (10.454202, 14.601943) centre (10.454202, 8.251943) ccw
  arc A2 (-210.208298, 14.601943) -> (-216.558298, 8.251943) centre (-210.208298, 8.251943) ccw
  arc A3 (-216.558298, -98.110557) -> (-210.208298, -104.460557) centre (-210.208298, -98.110557) ccw
  point P0 (0, 0)
hole "Hole4" at (210.208298, 8.251943, 0) at (-10.454202, 8.251943, 0) at (-10.454202, -98.110557, 0) at (210.208298, -98.110557, 0) direction (0, 0, 1) diameter 3.175 end through all
sketch "Sketch18" plane through (0, 0, 4.7625) normal (0, 0, 1) x (1, 0, 0)
  line L0 (214.177048, -41.754307) -> (216.558298, -41.754307)
  line L1 (216.558298, -41.754307) -> (216.558298, 8.251943)
  arc A0 (216.558298, 8.251943) -> (210.208298, 14.601943) centre (210.208298, 8.251943) ccw
  line L2 (210.208298, 14.601943) -> (25.105798, 14.601943)
  line L3 (25.105798, 12.220693) -> (210.208298, 12.220693)
  arc A1 (214.177048, 8.251943) -> (210.208298, 12.220693) centre (210.208298, 8.251943) ccw
  line L4 (214.177048, 8.251943) -> (214.177048, -41.754307)
  line L5 (25.105798, 14.601943) -> (37.805798, 14.601943)
  line L6 (37.805798, 14.601943) -> (37.805798, 12.220693)
  point P0 (0, 0)
  dimension "d80" = 12.7
extrude "Extrusion8" add sketch "Sketch18" along normal blind 10.3124
sketch "Sketch19" plane through (0, 0, 4.7625) normal (0, 0, 1) x (1, 0, 0)
  line L0 (37.805798, 12.220693) -> (37.805798, 14.601943)
  line L1 (37.805798, 14.601943) -> (25.105798, 14.601943)
  line L2 (25.105798, 14.601943) -> (25.105798, 12.220693)
  line L3 (25.105798, 12.220693) -> (37.805798, 12.220693)
  point P0 (0, 0)
extrude "Extrusion9" add sketch "Sketch19" along normal blind 2.6924
properties part number "Master Tablet Enclosure"
